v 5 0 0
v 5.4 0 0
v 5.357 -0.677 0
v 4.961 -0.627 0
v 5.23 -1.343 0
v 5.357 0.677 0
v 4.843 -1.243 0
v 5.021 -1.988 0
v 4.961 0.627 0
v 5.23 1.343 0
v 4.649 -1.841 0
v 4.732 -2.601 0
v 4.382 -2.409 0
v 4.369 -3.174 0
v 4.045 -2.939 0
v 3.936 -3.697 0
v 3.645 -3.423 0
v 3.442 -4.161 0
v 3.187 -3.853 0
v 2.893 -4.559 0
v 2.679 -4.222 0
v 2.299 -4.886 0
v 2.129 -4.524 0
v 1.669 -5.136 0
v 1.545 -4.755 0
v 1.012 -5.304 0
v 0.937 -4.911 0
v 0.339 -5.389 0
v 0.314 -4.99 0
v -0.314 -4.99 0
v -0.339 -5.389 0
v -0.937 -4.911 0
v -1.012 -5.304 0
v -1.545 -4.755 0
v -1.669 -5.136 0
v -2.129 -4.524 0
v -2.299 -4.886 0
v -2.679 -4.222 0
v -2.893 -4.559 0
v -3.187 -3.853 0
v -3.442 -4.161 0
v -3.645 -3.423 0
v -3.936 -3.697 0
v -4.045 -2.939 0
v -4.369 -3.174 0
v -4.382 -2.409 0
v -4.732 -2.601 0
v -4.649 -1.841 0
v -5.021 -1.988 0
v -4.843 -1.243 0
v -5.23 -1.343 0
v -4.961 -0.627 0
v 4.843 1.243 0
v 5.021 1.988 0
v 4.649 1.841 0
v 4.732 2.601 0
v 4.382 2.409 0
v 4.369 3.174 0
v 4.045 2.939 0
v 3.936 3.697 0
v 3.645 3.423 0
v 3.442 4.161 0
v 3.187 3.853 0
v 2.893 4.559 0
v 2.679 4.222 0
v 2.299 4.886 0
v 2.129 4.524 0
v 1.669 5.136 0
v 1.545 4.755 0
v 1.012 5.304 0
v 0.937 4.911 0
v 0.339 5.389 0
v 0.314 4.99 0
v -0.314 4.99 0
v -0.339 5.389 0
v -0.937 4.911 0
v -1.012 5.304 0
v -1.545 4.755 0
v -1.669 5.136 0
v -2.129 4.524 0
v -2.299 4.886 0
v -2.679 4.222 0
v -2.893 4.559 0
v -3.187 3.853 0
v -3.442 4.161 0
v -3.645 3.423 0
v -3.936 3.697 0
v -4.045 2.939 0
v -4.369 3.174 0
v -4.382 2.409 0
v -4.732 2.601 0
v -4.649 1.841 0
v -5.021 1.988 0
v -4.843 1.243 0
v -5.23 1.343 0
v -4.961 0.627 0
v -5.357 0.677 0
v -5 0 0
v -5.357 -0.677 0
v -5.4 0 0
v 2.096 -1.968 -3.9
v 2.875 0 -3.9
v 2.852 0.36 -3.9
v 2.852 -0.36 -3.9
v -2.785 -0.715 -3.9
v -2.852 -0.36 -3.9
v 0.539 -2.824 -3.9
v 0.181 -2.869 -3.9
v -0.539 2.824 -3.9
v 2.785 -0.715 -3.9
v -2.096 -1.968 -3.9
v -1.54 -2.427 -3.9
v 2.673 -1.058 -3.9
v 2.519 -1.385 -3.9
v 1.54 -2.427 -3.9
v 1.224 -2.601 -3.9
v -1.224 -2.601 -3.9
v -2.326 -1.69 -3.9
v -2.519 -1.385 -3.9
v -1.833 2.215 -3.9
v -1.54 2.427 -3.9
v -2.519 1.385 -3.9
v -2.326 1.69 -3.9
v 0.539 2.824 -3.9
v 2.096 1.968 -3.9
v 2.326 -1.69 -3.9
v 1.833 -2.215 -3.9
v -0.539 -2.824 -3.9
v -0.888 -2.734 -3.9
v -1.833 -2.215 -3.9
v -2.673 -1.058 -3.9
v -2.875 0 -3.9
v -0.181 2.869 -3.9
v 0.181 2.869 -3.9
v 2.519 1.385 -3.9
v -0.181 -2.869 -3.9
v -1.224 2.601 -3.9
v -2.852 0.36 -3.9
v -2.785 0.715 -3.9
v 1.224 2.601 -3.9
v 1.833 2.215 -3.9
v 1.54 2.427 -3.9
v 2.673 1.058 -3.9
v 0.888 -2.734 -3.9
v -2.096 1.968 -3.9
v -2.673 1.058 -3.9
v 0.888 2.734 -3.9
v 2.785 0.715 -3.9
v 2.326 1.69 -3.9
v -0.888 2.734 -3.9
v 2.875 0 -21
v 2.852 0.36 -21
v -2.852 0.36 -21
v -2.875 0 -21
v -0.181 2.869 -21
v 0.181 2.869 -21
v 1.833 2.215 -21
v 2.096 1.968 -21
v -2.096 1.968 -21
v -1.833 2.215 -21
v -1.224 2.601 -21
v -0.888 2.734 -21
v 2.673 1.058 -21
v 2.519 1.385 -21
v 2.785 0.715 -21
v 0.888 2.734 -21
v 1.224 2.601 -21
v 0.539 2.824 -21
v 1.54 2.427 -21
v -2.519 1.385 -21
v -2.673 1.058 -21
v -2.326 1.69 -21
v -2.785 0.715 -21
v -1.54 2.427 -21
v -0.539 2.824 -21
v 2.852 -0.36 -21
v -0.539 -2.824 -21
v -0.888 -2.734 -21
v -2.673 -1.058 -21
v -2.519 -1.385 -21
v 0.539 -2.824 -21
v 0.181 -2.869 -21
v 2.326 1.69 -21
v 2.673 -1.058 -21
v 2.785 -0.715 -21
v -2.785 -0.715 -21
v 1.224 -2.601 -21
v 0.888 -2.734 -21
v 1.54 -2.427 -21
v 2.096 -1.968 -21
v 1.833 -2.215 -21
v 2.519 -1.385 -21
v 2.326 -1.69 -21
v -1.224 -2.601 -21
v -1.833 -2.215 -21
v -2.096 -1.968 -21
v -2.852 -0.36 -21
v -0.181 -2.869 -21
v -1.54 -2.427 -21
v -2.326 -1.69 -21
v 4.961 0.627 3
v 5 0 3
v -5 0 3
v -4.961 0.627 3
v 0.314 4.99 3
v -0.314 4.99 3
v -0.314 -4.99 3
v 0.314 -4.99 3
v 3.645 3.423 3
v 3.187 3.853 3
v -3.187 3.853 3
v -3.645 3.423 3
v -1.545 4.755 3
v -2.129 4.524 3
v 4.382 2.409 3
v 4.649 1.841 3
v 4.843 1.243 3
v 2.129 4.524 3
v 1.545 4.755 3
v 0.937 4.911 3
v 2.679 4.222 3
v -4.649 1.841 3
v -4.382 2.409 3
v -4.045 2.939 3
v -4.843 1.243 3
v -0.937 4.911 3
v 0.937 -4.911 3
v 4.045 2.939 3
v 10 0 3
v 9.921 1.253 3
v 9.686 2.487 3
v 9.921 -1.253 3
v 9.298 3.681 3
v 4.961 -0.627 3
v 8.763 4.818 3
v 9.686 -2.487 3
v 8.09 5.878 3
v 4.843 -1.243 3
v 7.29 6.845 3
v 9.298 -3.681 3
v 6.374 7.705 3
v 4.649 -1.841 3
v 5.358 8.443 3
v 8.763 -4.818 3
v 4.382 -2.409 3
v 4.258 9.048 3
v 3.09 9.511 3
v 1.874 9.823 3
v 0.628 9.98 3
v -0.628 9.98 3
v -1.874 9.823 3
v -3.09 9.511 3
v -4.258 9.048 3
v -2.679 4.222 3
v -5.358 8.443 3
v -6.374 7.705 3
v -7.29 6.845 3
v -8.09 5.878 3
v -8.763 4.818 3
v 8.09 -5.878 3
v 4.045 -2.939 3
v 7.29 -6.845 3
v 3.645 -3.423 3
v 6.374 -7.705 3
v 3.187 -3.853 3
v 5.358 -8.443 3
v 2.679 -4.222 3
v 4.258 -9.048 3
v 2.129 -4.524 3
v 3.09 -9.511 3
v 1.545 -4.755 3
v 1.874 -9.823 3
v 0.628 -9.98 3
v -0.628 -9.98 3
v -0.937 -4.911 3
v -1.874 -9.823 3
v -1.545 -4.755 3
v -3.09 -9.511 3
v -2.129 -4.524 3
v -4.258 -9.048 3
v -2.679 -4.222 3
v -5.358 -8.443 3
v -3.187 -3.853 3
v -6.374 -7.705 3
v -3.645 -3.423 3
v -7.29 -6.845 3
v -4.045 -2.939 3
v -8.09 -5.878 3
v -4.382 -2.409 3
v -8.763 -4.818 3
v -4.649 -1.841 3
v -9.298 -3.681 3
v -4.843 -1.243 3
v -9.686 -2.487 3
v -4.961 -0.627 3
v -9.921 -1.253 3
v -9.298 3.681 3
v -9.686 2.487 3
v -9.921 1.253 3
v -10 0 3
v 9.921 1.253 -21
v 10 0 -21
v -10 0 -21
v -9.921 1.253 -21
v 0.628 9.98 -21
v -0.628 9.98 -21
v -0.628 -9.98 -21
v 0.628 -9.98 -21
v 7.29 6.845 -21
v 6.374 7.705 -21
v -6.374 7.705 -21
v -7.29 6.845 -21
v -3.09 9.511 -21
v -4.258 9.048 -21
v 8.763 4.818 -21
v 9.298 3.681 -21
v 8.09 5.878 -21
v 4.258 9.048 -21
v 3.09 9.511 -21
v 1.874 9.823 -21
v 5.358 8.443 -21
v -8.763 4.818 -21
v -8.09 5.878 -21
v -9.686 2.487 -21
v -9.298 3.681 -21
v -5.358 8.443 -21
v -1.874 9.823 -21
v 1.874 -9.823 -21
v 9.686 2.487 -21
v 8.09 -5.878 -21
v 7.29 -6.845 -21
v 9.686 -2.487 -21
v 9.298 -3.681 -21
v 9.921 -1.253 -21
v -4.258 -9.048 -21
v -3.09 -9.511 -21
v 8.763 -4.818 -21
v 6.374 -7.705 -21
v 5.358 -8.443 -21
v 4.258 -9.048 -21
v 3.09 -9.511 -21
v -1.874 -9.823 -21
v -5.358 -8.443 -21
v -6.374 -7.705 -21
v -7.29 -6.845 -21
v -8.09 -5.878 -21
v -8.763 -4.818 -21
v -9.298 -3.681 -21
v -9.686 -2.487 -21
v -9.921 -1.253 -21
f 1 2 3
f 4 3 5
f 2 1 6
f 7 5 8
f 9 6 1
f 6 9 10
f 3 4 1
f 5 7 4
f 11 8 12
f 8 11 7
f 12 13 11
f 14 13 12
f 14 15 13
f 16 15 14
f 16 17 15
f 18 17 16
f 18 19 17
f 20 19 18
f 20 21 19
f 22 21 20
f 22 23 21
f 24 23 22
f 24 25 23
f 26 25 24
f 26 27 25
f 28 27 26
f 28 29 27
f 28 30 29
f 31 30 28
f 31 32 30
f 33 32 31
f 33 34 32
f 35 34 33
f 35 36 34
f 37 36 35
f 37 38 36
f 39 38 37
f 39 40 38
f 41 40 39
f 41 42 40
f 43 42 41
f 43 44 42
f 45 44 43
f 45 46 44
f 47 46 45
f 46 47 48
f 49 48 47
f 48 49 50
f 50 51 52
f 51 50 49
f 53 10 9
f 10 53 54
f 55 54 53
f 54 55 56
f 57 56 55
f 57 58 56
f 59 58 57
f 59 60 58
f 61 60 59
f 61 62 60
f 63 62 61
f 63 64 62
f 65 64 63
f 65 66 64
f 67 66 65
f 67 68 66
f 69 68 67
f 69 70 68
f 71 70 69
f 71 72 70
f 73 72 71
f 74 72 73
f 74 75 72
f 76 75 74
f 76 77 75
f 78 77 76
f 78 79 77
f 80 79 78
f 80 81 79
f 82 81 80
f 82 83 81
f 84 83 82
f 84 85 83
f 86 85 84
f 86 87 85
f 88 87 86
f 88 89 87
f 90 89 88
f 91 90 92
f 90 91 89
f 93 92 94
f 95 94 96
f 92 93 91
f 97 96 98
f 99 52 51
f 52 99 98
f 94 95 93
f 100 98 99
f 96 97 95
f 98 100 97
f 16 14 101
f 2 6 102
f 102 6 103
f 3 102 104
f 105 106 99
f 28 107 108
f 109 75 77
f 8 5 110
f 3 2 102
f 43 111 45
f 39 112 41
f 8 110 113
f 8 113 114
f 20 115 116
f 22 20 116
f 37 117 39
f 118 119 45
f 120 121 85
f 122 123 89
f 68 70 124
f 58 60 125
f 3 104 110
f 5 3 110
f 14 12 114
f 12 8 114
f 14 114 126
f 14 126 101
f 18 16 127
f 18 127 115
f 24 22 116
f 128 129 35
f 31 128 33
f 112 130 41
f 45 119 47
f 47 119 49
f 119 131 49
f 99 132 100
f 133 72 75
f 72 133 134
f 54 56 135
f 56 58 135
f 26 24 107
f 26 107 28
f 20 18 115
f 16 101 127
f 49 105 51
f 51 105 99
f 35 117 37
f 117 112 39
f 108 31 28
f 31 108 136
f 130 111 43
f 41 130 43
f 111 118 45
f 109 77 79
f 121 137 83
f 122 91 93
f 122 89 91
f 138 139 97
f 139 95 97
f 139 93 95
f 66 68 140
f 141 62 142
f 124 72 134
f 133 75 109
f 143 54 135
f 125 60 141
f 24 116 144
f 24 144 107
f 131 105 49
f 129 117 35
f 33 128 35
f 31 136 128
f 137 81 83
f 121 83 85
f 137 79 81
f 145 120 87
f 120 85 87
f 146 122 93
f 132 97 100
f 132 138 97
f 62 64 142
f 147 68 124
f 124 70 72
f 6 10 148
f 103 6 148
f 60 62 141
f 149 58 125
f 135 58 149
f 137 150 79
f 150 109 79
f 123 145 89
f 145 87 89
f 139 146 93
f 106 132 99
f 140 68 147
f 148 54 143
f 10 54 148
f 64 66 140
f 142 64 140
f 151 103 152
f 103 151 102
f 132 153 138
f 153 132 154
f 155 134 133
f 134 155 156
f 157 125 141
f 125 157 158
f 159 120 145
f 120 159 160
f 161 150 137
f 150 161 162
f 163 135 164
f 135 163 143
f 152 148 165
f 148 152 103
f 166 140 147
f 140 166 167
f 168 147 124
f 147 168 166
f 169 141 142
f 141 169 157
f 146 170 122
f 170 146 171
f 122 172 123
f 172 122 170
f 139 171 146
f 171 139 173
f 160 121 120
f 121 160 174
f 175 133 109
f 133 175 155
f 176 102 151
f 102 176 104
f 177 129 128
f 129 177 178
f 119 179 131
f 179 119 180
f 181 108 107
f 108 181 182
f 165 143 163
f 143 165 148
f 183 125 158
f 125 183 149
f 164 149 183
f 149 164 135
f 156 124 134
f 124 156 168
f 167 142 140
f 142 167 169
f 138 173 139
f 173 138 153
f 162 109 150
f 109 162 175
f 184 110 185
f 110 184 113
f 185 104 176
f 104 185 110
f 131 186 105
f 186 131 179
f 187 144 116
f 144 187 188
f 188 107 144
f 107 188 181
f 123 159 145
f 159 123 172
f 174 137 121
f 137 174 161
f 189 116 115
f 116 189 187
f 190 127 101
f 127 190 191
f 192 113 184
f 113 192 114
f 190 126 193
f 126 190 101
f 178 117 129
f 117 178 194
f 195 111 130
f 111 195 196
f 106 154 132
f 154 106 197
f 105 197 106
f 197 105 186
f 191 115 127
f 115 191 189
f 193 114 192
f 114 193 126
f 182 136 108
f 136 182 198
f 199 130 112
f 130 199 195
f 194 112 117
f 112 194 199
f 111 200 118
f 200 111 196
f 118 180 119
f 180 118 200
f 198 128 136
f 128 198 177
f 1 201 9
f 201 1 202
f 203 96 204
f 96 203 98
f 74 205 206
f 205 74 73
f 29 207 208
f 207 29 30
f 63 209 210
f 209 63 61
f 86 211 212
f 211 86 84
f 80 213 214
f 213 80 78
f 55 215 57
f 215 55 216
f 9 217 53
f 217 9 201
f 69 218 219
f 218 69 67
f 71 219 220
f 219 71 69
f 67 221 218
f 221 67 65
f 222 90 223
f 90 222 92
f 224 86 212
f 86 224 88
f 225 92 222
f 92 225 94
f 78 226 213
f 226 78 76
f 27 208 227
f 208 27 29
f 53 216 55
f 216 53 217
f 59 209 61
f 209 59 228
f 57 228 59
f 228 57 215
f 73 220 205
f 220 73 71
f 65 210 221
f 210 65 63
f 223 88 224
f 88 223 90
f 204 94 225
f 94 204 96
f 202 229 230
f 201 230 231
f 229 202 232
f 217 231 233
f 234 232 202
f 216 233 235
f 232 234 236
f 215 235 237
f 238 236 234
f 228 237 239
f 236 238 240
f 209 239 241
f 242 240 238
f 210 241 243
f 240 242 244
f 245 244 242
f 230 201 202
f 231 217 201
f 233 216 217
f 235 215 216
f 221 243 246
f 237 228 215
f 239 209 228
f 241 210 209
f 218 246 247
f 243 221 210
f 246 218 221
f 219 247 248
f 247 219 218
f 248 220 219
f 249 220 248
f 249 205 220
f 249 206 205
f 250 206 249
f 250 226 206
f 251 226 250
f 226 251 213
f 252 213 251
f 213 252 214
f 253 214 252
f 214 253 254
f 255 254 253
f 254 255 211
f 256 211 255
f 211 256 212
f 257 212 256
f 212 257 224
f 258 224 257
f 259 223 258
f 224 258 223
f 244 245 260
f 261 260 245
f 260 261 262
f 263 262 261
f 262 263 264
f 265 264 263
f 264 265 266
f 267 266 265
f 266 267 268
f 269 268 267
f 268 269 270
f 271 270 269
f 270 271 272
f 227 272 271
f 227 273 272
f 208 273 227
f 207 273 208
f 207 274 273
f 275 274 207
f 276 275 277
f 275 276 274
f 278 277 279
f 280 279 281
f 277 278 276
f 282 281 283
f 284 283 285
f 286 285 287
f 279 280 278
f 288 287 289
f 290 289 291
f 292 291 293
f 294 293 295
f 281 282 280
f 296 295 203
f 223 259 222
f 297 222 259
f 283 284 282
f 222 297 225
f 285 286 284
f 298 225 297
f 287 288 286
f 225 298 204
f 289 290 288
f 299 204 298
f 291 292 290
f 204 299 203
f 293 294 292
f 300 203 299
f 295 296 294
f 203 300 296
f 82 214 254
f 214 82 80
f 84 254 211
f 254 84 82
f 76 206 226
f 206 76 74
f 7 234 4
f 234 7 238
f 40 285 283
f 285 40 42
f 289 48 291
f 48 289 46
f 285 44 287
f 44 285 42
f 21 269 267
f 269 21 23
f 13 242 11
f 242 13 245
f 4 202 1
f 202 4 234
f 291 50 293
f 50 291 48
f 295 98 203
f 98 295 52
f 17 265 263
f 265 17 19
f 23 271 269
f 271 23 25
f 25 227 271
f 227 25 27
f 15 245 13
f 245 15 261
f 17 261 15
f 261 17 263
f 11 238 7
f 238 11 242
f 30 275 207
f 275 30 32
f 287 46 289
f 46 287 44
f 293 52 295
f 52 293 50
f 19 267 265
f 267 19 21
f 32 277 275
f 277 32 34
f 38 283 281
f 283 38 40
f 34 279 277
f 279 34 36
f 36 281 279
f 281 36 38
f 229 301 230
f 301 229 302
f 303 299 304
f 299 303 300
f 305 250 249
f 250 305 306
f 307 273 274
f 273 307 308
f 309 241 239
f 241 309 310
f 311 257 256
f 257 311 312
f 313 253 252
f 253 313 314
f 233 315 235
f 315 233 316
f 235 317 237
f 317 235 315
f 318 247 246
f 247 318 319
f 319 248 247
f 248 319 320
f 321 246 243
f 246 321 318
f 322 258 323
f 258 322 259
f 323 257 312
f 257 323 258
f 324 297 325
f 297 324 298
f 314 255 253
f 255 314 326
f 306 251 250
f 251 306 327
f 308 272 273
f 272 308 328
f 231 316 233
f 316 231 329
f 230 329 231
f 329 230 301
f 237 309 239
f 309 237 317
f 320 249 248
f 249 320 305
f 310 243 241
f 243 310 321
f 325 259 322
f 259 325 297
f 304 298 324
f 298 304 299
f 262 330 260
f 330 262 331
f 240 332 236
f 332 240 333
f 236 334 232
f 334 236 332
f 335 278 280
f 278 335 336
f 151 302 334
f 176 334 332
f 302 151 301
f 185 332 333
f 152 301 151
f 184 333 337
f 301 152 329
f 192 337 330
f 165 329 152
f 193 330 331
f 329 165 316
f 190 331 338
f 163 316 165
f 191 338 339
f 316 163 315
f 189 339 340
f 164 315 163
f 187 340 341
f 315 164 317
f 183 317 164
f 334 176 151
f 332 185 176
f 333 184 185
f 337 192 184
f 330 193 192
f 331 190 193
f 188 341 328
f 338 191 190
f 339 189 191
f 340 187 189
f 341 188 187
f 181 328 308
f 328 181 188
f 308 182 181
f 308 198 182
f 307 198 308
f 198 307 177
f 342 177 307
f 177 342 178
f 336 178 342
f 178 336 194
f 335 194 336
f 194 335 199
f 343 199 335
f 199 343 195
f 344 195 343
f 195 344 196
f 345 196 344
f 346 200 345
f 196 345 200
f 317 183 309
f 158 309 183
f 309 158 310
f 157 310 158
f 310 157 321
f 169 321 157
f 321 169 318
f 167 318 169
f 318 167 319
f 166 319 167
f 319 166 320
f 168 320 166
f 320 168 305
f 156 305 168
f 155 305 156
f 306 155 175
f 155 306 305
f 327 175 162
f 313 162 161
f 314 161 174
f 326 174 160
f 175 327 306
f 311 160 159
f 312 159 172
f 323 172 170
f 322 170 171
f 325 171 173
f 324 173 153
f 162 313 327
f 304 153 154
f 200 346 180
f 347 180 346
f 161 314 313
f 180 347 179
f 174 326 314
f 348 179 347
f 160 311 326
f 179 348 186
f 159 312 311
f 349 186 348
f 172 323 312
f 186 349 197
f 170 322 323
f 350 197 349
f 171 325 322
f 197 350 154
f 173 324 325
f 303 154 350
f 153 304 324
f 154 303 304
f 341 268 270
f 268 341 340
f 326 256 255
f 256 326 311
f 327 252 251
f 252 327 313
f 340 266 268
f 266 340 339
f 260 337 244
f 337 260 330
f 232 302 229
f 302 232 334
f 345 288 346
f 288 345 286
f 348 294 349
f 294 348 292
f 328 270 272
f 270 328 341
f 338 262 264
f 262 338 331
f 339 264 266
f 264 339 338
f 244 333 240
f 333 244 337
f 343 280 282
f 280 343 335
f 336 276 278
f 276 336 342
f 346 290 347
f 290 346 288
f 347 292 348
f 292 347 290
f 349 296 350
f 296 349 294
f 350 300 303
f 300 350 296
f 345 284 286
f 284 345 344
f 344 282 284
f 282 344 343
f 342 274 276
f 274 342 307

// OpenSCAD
$fn = 50;


difference() {
	union() {
		translate(v = [0, 0, -21.0000000000]) {
			cylinder(h = 24, r = 10.0000000000);
		}
	}
	union() {
		translate(v = [0, 0, 0]) {
			rotate(a = [0, 0, 0]) {
				difference() {
					union() {
						translate(v = [0, 0, -24.0000000000]) {
							cylinder(h = 24, r = 2.6000000000);
						}
						translate(v = [0, 0, -3.9000000000]) {
							cylinder(h = 3.9000000000, r1 = 2.8750000000, r2 = 5.4000000000);
						}
						translate(v = [0, 0, -24.0000000000]) {
							cylinder(h = 24, r = 2.8750000000);
						}
						translate(v = [0, 0, -24.0000000000]) {
							cylinder(h = 24, r = 2.6000000000);
						}
					}
					union();
				}
			}
		}
		#cylinder(h = 3, r = 5.0000000000);
	}
}
